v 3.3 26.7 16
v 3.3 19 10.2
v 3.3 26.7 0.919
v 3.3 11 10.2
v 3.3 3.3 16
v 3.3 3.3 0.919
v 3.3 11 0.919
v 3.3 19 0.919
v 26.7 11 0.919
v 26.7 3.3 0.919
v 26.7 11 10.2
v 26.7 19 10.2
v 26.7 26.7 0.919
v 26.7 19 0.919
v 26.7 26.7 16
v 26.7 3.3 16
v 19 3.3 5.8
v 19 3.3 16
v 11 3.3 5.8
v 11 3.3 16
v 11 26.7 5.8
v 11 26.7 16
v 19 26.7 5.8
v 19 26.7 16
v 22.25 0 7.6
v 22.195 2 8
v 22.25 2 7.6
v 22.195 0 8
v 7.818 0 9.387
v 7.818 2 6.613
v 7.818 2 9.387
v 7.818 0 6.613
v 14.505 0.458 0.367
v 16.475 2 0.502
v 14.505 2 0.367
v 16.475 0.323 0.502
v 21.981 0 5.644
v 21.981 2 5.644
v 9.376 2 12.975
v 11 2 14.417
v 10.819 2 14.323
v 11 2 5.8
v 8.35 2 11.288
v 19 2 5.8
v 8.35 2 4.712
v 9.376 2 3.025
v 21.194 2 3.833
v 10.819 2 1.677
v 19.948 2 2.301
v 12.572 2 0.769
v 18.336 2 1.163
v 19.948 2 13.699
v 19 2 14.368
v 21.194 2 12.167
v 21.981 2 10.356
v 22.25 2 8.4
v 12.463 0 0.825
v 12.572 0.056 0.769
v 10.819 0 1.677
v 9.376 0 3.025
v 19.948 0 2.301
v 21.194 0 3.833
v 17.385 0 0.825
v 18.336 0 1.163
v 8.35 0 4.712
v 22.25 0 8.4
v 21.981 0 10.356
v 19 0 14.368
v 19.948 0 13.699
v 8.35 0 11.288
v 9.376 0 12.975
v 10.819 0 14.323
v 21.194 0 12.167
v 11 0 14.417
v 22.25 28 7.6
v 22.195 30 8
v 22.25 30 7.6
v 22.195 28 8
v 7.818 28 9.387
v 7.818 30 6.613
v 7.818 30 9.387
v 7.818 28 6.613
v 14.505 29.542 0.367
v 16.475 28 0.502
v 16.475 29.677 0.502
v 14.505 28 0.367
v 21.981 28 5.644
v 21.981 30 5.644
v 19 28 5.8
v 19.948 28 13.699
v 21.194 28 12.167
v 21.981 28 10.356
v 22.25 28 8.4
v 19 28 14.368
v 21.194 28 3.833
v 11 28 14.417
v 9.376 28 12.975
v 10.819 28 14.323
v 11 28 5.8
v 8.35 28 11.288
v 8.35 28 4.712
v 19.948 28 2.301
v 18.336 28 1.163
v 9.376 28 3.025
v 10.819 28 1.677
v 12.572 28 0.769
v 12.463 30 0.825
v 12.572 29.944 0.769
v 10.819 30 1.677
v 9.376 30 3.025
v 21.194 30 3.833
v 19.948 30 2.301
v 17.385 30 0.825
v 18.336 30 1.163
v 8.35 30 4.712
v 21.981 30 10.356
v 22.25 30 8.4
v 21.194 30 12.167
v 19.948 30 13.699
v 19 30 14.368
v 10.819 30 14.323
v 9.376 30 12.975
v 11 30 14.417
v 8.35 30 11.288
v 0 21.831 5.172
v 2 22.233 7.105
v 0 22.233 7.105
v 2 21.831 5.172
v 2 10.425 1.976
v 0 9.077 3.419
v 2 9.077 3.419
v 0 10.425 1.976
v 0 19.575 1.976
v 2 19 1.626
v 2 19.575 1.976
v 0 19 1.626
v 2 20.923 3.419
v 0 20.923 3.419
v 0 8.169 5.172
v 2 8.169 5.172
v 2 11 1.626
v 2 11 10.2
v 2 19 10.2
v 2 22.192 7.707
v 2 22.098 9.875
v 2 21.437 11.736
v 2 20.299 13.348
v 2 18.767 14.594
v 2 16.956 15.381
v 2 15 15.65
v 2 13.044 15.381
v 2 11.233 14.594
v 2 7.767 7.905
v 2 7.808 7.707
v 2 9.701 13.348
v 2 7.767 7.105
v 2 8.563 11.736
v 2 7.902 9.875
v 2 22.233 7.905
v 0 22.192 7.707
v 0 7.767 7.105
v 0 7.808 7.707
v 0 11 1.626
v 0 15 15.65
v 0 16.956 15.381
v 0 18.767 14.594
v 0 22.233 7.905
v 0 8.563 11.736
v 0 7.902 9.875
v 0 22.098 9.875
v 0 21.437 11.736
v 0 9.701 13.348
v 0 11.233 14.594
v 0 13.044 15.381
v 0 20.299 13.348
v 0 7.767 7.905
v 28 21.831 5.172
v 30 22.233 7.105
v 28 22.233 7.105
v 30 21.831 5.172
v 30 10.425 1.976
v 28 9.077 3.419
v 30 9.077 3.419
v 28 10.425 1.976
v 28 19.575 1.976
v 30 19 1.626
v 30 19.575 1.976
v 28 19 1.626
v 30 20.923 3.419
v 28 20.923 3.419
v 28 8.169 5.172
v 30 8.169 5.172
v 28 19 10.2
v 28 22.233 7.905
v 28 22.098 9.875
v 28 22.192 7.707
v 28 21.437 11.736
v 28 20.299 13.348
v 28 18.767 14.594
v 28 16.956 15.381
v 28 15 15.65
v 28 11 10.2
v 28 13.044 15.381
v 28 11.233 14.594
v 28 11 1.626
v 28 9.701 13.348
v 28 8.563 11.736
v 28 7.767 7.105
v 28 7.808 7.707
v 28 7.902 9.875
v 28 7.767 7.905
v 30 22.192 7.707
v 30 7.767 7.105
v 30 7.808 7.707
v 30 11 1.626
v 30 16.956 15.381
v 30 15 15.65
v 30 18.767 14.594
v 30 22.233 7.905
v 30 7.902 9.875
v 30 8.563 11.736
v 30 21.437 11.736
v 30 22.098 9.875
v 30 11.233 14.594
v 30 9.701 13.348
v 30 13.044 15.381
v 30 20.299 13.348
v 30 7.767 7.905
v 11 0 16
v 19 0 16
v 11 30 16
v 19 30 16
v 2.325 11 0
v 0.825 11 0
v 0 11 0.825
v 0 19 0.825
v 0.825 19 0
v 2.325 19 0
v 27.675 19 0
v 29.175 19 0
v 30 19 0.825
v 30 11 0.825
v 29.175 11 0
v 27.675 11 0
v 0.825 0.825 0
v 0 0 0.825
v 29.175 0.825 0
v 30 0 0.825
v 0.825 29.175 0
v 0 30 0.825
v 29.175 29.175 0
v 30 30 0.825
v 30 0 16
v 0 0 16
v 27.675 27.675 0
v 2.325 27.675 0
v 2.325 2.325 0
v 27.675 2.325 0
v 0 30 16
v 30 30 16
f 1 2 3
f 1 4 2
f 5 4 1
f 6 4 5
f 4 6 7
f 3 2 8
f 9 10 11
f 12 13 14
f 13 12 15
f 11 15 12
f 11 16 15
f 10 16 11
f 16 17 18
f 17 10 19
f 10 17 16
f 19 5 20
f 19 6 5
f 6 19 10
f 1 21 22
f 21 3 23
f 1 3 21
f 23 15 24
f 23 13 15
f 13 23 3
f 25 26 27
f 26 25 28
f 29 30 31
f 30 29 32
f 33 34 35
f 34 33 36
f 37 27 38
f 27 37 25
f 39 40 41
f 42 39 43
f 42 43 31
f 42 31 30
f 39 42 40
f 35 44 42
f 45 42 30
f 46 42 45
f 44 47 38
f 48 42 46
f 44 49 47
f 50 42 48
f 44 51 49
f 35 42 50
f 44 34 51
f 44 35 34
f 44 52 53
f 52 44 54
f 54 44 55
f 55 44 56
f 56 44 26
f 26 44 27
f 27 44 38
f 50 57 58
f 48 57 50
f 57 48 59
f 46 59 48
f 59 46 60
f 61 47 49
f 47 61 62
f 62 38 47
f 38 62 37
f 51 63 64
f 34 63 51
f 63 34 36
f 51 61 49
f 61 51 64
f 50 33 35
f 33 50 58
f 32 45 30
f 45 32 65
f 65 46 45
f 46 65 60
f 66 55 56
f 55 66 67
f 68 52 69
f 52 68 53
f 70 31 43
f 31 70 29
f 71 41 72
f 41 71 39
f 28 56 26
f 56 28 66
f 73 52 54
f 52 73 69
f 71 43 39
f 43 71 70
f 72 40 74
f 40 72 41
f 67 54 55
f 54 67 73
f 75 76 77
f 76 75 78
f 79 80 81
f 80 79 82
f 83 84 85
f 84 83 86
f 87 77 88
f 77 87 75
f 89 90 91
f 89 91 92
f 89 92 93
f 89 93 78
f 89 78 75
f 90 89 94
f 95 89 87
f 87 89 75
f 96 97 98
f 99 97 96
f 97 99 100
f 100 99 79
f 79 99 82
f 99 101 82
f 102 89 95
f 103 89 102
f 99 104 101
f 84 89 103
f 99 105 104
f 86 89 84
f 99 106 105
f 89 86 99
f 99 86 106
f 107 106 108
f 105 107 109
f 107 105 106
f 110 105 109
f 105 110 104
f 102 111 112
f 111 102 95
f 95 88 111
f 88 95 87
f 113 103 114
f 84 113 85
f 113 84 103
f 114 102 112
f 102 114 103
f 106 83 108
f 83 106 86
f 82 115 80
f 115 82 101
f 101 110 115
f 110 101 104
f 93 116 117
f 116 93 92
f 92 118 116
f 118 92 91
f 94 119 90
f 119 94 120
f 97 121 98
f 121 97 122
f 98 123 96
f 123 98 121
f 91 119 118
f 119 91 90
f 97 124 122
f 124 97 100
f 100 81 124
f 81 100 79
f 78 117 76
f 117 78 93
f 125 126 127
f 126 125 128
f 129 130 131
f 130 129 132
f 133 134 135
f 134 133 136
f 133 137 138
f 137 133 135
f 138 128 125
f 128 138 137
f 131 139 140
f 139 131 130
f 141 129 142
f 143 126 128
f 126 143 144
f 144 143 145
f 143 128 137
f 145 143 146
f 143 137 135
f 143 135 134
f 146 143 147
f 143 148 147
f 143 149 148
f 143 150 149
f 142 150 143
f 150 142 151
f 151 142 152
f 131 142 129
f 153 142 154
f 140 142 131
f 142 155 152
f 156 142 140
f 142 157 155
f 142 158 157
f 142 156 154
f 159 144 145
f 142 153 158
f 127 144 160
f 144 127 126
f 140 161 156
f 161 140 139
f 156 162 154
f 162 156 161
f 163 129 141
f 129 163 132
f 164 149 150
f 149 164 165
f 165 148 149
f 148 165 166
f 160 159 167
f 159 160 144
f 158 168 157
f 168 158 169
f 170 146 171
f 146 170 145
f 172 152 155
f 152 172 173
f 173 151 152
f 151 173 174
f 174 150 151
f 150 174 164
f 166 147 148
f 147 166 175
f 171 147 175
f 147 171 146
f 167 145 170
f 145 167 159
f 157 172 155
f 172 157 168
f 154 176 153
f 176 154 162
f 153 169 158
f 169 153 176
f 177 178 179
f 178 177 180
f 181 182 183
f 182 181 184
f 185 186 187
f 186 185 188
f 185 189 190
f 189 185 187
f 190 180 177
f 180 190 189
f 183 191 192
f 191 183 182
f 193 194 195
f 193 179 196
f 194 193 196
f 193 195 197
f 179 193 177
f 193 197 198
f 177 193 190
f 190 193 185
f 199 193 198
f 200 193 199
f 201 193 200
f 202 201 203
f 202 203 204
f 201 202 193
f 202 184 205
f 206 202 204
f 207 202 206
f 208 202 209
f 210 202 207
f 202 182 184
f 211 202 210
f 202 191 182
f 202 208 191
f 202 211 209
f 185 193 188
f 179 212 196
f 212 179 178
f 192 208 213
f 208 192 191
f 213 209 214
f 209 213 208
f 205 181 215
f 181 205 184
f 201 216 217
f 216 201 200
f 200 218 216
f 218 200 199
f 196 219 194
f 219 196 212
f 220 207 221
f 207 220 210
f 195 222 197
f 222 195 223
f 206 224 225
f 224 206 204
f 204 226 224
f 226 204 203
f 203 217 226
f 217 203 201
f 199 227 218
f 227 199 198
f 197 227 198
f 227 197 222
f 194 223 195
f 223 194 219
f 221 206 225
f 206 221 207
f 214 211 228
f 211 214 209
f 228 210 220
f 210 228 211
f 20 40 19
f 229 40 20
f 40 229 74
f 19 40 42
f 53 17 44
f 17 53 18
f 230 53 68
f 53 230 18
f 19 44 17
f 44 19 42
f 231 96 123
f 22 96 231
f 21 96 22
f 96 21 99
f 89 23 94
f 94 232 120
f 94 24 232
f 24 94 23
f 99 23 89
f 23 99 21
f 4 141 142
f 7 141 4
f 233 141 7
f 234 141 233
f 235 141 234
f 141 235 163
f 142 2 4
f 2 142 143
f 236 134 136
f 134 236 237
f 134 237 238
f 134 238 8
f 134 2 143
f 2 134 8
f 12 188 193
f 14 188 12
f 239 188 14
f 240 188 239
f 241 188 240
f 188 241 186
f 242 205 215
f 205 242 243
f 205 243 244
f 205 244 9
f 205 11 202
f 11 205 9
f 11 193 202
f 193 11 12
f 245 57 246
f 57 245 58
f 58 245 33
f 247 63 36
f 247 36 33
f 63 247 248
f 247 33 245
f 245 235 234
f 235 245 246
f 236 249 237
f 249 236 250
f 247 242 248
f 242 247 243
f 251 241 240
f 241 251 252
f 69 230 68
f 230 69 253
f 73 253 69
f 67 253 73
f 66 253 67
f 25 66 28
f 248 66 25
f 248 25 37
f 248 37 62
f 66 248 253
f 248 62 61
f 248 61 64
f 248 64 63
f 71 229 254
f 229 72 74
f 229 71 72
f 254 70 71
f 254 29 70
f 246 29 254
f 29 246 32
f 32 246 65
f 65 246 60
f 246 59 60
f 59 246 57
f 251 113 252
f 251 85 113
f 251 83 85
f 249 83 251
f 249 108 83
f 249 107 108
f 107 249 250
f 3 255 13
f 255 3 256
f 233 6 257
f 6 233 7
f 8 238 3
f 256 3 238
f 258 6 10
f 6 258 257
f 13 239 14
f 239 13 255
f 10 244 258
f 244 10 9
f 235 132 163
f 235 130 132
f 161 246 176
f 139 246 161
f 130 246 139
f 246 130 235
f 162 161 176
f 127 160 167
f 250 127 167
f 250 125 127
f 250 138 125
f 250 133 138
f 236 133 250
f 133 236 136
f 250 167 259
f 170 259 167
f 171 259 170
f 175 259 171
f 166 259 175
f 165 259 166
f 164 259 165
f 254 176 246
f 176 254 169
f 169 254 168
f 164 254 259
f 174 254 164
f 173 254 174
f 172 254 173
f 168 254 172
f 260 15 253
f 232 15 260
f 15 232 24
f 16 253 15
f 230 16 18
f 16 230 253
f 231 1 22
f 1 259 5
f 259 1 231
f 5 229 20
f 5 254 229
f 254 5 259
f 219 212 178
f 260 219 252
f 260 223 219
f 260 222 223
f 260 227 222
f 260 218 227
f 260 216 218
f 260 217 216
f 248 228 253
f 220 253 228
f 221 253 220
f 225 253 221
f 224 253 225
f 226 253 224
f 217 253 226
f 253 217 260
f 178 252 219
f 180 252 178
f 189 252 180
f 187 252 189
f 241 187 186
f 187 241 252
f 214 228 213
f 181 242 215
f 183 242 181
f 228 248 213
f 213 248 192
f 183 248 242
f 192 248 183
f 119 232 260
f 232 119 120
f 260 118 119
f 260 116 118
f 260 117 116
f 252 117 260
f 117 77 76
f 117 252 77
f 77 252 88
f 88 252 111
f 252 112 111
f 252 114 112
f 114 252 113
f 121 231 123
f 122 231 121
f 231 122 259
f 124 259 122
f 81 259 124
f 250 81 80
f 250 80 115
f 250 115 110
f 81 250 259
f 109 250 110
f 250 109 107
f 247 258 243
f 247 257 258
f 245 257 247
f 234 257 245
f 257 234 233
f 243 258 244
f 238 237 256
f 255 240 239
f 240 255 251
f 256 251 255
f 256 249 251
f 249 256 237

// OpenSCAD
// file: settings.scad
cube_width=30;
cube_height=16;
cube_thickness=3.3;
cube_bottom_thickness = cube_thickness+1.2;

cap_width=30;
cap_height=6;
cap_thickness=3.3;

glyph_depth=0.7;
glyph_thickness=1.5;

photo_resitor_hole_r = 2.4;
spring_contact_hole_r = 3.125;
// main file
include <settings.scad>

module radio_cube_1x1f(width, height, thickness)
{
    h2 = height/2;
    difference()
    {
        cube([width,width,height]);
        union()
        {
            translate([thickness,thickness,-0.01]) cube([width-2*thickness,width-2*thickness,height+10]);
            
            //-y
            translate([width/2,2.0,h2-0.4])rotate([90,0,0])cylinder(r=14.5/2, h=2.6);
            translate([width/2,2.0,h2+0.4])rotate([90,0,0])cylinder(r=14.5/2, h=2.6);
            
            // y
            translate([width/2,width+0.6,h2-0.4])rotate([90,0,0])cylinder(r=14.5/2, h=2.6);
            translate([width/2,width+0.6,h2+0.4])rotate([90,0,0])cylinder(r=14.5/2, h=2.6);
            
            //-x
            translate([2.0,width/2,h2-0.4])rotate([0,-90,0])cylinder(r=14.5/2, h=2.6);
            translate([2.0,width/2,h2+0.4])rotate([0,-90,0])cylinder(r=14.5/2, h=2.6);
            
            // x
            translate([width+0.6,width/2,h2-0.4])rotate([0,-90,0])cylinder(r=14.5/2, h=2.6);
            translate([width+0.6,width/2,h2+0.4])rotate([0,-90,0])cylinder(r=14.5/2, h=2.6);
            
            //bottom
            //translate([width/2,width/2,-0.1]) cylinder(r=15.3/2, h=3.6);
            
            //cutouts
            // -y
            translate([width/2-4,-0.2,5.8])cube([8,20,15]);
            // y
            translate([width/2-4, width-10,5.8])cube([8,20,15]);
            // -x
            translate([-0.2,width/2-4,height-5.8])mirror([0,0,1])cube([20,8,height]);
            // x
            translate([width-10,width/2-4,height-5.8])mirror([0,0,1])cube([20,8,15]);
            // bottom
            translate([width/2-2.25,width/2-4,0])cube([4.5,8,15]);
            
            //corners
            translate([0,0.25*thickness,0])rotate([45,0,0]) translate([-0.5*width, -width, -0.5*height]) cube([2*width, width, 2*height]);
            translate([0.25*thickness,0,0]) rotate([0,-45,0]) translate([-width, -0.5*width, -0.5*height]) cube([width, 2*width, 2*height]);
            translate([width-0.25*thickness,0,0]) rotate([0,45,0]) translate([0, 0, -0.5*height]) cube([width, 2*width, 2*height]);
            translate([0,width-0.25*thickness,0]) rotate([-45,0,0]) translate([-0.5*width, 0, -0.5*height]) cube([2*width, width, 2*height]);
            
            translate([width/2,width/2,-width/8-thickness-1]) rotate([0,0,45])cylinder(r1=width, r2=0, h=width*2/3, $fn=4);

/*
            translate([0,0,height])mirror([0,0,1])
            {
                translate([0,0.25*thickness,0])rotate([45,0,0]) translate([-0.5*width, -width, -0.5*height]) cube([2*width, width, 2*height]);
                translate([0.25*thickness,0,0]) rotate([0,-45,0]) translate([-width, -0.5*width, -0.5*height]) cube([width, 2*width, 2*height]);
                translate([width-0.25*thickness,0,0]) rotate([0,45,0]) translate([0, 0, -0.5*height]) cube([width, 2*width, 2*height]);
                translate([0,width-0.25*thickness,0]) rotate([-45,0,0]) translate([-0.5*width, 0, -0.5*height]) cube([2*width, width, 2*height]);
            
                translate([width/2,width/2,-width/8-thickness-1]) rotate([0,0,45])cylinder(r1=width, r2=0, h=width*2/3, $fn=4);
            }
*/
        }
    }
}


radio_cube_1x1f(cube_width, cube_height, cube_thickness);

//intersection()
//{
//    translate([cube_width/2,0,0])cube([100,100,100]);
//    radio_cube_1x1(cube_width, cube_height, cube_thickness);    
//}
